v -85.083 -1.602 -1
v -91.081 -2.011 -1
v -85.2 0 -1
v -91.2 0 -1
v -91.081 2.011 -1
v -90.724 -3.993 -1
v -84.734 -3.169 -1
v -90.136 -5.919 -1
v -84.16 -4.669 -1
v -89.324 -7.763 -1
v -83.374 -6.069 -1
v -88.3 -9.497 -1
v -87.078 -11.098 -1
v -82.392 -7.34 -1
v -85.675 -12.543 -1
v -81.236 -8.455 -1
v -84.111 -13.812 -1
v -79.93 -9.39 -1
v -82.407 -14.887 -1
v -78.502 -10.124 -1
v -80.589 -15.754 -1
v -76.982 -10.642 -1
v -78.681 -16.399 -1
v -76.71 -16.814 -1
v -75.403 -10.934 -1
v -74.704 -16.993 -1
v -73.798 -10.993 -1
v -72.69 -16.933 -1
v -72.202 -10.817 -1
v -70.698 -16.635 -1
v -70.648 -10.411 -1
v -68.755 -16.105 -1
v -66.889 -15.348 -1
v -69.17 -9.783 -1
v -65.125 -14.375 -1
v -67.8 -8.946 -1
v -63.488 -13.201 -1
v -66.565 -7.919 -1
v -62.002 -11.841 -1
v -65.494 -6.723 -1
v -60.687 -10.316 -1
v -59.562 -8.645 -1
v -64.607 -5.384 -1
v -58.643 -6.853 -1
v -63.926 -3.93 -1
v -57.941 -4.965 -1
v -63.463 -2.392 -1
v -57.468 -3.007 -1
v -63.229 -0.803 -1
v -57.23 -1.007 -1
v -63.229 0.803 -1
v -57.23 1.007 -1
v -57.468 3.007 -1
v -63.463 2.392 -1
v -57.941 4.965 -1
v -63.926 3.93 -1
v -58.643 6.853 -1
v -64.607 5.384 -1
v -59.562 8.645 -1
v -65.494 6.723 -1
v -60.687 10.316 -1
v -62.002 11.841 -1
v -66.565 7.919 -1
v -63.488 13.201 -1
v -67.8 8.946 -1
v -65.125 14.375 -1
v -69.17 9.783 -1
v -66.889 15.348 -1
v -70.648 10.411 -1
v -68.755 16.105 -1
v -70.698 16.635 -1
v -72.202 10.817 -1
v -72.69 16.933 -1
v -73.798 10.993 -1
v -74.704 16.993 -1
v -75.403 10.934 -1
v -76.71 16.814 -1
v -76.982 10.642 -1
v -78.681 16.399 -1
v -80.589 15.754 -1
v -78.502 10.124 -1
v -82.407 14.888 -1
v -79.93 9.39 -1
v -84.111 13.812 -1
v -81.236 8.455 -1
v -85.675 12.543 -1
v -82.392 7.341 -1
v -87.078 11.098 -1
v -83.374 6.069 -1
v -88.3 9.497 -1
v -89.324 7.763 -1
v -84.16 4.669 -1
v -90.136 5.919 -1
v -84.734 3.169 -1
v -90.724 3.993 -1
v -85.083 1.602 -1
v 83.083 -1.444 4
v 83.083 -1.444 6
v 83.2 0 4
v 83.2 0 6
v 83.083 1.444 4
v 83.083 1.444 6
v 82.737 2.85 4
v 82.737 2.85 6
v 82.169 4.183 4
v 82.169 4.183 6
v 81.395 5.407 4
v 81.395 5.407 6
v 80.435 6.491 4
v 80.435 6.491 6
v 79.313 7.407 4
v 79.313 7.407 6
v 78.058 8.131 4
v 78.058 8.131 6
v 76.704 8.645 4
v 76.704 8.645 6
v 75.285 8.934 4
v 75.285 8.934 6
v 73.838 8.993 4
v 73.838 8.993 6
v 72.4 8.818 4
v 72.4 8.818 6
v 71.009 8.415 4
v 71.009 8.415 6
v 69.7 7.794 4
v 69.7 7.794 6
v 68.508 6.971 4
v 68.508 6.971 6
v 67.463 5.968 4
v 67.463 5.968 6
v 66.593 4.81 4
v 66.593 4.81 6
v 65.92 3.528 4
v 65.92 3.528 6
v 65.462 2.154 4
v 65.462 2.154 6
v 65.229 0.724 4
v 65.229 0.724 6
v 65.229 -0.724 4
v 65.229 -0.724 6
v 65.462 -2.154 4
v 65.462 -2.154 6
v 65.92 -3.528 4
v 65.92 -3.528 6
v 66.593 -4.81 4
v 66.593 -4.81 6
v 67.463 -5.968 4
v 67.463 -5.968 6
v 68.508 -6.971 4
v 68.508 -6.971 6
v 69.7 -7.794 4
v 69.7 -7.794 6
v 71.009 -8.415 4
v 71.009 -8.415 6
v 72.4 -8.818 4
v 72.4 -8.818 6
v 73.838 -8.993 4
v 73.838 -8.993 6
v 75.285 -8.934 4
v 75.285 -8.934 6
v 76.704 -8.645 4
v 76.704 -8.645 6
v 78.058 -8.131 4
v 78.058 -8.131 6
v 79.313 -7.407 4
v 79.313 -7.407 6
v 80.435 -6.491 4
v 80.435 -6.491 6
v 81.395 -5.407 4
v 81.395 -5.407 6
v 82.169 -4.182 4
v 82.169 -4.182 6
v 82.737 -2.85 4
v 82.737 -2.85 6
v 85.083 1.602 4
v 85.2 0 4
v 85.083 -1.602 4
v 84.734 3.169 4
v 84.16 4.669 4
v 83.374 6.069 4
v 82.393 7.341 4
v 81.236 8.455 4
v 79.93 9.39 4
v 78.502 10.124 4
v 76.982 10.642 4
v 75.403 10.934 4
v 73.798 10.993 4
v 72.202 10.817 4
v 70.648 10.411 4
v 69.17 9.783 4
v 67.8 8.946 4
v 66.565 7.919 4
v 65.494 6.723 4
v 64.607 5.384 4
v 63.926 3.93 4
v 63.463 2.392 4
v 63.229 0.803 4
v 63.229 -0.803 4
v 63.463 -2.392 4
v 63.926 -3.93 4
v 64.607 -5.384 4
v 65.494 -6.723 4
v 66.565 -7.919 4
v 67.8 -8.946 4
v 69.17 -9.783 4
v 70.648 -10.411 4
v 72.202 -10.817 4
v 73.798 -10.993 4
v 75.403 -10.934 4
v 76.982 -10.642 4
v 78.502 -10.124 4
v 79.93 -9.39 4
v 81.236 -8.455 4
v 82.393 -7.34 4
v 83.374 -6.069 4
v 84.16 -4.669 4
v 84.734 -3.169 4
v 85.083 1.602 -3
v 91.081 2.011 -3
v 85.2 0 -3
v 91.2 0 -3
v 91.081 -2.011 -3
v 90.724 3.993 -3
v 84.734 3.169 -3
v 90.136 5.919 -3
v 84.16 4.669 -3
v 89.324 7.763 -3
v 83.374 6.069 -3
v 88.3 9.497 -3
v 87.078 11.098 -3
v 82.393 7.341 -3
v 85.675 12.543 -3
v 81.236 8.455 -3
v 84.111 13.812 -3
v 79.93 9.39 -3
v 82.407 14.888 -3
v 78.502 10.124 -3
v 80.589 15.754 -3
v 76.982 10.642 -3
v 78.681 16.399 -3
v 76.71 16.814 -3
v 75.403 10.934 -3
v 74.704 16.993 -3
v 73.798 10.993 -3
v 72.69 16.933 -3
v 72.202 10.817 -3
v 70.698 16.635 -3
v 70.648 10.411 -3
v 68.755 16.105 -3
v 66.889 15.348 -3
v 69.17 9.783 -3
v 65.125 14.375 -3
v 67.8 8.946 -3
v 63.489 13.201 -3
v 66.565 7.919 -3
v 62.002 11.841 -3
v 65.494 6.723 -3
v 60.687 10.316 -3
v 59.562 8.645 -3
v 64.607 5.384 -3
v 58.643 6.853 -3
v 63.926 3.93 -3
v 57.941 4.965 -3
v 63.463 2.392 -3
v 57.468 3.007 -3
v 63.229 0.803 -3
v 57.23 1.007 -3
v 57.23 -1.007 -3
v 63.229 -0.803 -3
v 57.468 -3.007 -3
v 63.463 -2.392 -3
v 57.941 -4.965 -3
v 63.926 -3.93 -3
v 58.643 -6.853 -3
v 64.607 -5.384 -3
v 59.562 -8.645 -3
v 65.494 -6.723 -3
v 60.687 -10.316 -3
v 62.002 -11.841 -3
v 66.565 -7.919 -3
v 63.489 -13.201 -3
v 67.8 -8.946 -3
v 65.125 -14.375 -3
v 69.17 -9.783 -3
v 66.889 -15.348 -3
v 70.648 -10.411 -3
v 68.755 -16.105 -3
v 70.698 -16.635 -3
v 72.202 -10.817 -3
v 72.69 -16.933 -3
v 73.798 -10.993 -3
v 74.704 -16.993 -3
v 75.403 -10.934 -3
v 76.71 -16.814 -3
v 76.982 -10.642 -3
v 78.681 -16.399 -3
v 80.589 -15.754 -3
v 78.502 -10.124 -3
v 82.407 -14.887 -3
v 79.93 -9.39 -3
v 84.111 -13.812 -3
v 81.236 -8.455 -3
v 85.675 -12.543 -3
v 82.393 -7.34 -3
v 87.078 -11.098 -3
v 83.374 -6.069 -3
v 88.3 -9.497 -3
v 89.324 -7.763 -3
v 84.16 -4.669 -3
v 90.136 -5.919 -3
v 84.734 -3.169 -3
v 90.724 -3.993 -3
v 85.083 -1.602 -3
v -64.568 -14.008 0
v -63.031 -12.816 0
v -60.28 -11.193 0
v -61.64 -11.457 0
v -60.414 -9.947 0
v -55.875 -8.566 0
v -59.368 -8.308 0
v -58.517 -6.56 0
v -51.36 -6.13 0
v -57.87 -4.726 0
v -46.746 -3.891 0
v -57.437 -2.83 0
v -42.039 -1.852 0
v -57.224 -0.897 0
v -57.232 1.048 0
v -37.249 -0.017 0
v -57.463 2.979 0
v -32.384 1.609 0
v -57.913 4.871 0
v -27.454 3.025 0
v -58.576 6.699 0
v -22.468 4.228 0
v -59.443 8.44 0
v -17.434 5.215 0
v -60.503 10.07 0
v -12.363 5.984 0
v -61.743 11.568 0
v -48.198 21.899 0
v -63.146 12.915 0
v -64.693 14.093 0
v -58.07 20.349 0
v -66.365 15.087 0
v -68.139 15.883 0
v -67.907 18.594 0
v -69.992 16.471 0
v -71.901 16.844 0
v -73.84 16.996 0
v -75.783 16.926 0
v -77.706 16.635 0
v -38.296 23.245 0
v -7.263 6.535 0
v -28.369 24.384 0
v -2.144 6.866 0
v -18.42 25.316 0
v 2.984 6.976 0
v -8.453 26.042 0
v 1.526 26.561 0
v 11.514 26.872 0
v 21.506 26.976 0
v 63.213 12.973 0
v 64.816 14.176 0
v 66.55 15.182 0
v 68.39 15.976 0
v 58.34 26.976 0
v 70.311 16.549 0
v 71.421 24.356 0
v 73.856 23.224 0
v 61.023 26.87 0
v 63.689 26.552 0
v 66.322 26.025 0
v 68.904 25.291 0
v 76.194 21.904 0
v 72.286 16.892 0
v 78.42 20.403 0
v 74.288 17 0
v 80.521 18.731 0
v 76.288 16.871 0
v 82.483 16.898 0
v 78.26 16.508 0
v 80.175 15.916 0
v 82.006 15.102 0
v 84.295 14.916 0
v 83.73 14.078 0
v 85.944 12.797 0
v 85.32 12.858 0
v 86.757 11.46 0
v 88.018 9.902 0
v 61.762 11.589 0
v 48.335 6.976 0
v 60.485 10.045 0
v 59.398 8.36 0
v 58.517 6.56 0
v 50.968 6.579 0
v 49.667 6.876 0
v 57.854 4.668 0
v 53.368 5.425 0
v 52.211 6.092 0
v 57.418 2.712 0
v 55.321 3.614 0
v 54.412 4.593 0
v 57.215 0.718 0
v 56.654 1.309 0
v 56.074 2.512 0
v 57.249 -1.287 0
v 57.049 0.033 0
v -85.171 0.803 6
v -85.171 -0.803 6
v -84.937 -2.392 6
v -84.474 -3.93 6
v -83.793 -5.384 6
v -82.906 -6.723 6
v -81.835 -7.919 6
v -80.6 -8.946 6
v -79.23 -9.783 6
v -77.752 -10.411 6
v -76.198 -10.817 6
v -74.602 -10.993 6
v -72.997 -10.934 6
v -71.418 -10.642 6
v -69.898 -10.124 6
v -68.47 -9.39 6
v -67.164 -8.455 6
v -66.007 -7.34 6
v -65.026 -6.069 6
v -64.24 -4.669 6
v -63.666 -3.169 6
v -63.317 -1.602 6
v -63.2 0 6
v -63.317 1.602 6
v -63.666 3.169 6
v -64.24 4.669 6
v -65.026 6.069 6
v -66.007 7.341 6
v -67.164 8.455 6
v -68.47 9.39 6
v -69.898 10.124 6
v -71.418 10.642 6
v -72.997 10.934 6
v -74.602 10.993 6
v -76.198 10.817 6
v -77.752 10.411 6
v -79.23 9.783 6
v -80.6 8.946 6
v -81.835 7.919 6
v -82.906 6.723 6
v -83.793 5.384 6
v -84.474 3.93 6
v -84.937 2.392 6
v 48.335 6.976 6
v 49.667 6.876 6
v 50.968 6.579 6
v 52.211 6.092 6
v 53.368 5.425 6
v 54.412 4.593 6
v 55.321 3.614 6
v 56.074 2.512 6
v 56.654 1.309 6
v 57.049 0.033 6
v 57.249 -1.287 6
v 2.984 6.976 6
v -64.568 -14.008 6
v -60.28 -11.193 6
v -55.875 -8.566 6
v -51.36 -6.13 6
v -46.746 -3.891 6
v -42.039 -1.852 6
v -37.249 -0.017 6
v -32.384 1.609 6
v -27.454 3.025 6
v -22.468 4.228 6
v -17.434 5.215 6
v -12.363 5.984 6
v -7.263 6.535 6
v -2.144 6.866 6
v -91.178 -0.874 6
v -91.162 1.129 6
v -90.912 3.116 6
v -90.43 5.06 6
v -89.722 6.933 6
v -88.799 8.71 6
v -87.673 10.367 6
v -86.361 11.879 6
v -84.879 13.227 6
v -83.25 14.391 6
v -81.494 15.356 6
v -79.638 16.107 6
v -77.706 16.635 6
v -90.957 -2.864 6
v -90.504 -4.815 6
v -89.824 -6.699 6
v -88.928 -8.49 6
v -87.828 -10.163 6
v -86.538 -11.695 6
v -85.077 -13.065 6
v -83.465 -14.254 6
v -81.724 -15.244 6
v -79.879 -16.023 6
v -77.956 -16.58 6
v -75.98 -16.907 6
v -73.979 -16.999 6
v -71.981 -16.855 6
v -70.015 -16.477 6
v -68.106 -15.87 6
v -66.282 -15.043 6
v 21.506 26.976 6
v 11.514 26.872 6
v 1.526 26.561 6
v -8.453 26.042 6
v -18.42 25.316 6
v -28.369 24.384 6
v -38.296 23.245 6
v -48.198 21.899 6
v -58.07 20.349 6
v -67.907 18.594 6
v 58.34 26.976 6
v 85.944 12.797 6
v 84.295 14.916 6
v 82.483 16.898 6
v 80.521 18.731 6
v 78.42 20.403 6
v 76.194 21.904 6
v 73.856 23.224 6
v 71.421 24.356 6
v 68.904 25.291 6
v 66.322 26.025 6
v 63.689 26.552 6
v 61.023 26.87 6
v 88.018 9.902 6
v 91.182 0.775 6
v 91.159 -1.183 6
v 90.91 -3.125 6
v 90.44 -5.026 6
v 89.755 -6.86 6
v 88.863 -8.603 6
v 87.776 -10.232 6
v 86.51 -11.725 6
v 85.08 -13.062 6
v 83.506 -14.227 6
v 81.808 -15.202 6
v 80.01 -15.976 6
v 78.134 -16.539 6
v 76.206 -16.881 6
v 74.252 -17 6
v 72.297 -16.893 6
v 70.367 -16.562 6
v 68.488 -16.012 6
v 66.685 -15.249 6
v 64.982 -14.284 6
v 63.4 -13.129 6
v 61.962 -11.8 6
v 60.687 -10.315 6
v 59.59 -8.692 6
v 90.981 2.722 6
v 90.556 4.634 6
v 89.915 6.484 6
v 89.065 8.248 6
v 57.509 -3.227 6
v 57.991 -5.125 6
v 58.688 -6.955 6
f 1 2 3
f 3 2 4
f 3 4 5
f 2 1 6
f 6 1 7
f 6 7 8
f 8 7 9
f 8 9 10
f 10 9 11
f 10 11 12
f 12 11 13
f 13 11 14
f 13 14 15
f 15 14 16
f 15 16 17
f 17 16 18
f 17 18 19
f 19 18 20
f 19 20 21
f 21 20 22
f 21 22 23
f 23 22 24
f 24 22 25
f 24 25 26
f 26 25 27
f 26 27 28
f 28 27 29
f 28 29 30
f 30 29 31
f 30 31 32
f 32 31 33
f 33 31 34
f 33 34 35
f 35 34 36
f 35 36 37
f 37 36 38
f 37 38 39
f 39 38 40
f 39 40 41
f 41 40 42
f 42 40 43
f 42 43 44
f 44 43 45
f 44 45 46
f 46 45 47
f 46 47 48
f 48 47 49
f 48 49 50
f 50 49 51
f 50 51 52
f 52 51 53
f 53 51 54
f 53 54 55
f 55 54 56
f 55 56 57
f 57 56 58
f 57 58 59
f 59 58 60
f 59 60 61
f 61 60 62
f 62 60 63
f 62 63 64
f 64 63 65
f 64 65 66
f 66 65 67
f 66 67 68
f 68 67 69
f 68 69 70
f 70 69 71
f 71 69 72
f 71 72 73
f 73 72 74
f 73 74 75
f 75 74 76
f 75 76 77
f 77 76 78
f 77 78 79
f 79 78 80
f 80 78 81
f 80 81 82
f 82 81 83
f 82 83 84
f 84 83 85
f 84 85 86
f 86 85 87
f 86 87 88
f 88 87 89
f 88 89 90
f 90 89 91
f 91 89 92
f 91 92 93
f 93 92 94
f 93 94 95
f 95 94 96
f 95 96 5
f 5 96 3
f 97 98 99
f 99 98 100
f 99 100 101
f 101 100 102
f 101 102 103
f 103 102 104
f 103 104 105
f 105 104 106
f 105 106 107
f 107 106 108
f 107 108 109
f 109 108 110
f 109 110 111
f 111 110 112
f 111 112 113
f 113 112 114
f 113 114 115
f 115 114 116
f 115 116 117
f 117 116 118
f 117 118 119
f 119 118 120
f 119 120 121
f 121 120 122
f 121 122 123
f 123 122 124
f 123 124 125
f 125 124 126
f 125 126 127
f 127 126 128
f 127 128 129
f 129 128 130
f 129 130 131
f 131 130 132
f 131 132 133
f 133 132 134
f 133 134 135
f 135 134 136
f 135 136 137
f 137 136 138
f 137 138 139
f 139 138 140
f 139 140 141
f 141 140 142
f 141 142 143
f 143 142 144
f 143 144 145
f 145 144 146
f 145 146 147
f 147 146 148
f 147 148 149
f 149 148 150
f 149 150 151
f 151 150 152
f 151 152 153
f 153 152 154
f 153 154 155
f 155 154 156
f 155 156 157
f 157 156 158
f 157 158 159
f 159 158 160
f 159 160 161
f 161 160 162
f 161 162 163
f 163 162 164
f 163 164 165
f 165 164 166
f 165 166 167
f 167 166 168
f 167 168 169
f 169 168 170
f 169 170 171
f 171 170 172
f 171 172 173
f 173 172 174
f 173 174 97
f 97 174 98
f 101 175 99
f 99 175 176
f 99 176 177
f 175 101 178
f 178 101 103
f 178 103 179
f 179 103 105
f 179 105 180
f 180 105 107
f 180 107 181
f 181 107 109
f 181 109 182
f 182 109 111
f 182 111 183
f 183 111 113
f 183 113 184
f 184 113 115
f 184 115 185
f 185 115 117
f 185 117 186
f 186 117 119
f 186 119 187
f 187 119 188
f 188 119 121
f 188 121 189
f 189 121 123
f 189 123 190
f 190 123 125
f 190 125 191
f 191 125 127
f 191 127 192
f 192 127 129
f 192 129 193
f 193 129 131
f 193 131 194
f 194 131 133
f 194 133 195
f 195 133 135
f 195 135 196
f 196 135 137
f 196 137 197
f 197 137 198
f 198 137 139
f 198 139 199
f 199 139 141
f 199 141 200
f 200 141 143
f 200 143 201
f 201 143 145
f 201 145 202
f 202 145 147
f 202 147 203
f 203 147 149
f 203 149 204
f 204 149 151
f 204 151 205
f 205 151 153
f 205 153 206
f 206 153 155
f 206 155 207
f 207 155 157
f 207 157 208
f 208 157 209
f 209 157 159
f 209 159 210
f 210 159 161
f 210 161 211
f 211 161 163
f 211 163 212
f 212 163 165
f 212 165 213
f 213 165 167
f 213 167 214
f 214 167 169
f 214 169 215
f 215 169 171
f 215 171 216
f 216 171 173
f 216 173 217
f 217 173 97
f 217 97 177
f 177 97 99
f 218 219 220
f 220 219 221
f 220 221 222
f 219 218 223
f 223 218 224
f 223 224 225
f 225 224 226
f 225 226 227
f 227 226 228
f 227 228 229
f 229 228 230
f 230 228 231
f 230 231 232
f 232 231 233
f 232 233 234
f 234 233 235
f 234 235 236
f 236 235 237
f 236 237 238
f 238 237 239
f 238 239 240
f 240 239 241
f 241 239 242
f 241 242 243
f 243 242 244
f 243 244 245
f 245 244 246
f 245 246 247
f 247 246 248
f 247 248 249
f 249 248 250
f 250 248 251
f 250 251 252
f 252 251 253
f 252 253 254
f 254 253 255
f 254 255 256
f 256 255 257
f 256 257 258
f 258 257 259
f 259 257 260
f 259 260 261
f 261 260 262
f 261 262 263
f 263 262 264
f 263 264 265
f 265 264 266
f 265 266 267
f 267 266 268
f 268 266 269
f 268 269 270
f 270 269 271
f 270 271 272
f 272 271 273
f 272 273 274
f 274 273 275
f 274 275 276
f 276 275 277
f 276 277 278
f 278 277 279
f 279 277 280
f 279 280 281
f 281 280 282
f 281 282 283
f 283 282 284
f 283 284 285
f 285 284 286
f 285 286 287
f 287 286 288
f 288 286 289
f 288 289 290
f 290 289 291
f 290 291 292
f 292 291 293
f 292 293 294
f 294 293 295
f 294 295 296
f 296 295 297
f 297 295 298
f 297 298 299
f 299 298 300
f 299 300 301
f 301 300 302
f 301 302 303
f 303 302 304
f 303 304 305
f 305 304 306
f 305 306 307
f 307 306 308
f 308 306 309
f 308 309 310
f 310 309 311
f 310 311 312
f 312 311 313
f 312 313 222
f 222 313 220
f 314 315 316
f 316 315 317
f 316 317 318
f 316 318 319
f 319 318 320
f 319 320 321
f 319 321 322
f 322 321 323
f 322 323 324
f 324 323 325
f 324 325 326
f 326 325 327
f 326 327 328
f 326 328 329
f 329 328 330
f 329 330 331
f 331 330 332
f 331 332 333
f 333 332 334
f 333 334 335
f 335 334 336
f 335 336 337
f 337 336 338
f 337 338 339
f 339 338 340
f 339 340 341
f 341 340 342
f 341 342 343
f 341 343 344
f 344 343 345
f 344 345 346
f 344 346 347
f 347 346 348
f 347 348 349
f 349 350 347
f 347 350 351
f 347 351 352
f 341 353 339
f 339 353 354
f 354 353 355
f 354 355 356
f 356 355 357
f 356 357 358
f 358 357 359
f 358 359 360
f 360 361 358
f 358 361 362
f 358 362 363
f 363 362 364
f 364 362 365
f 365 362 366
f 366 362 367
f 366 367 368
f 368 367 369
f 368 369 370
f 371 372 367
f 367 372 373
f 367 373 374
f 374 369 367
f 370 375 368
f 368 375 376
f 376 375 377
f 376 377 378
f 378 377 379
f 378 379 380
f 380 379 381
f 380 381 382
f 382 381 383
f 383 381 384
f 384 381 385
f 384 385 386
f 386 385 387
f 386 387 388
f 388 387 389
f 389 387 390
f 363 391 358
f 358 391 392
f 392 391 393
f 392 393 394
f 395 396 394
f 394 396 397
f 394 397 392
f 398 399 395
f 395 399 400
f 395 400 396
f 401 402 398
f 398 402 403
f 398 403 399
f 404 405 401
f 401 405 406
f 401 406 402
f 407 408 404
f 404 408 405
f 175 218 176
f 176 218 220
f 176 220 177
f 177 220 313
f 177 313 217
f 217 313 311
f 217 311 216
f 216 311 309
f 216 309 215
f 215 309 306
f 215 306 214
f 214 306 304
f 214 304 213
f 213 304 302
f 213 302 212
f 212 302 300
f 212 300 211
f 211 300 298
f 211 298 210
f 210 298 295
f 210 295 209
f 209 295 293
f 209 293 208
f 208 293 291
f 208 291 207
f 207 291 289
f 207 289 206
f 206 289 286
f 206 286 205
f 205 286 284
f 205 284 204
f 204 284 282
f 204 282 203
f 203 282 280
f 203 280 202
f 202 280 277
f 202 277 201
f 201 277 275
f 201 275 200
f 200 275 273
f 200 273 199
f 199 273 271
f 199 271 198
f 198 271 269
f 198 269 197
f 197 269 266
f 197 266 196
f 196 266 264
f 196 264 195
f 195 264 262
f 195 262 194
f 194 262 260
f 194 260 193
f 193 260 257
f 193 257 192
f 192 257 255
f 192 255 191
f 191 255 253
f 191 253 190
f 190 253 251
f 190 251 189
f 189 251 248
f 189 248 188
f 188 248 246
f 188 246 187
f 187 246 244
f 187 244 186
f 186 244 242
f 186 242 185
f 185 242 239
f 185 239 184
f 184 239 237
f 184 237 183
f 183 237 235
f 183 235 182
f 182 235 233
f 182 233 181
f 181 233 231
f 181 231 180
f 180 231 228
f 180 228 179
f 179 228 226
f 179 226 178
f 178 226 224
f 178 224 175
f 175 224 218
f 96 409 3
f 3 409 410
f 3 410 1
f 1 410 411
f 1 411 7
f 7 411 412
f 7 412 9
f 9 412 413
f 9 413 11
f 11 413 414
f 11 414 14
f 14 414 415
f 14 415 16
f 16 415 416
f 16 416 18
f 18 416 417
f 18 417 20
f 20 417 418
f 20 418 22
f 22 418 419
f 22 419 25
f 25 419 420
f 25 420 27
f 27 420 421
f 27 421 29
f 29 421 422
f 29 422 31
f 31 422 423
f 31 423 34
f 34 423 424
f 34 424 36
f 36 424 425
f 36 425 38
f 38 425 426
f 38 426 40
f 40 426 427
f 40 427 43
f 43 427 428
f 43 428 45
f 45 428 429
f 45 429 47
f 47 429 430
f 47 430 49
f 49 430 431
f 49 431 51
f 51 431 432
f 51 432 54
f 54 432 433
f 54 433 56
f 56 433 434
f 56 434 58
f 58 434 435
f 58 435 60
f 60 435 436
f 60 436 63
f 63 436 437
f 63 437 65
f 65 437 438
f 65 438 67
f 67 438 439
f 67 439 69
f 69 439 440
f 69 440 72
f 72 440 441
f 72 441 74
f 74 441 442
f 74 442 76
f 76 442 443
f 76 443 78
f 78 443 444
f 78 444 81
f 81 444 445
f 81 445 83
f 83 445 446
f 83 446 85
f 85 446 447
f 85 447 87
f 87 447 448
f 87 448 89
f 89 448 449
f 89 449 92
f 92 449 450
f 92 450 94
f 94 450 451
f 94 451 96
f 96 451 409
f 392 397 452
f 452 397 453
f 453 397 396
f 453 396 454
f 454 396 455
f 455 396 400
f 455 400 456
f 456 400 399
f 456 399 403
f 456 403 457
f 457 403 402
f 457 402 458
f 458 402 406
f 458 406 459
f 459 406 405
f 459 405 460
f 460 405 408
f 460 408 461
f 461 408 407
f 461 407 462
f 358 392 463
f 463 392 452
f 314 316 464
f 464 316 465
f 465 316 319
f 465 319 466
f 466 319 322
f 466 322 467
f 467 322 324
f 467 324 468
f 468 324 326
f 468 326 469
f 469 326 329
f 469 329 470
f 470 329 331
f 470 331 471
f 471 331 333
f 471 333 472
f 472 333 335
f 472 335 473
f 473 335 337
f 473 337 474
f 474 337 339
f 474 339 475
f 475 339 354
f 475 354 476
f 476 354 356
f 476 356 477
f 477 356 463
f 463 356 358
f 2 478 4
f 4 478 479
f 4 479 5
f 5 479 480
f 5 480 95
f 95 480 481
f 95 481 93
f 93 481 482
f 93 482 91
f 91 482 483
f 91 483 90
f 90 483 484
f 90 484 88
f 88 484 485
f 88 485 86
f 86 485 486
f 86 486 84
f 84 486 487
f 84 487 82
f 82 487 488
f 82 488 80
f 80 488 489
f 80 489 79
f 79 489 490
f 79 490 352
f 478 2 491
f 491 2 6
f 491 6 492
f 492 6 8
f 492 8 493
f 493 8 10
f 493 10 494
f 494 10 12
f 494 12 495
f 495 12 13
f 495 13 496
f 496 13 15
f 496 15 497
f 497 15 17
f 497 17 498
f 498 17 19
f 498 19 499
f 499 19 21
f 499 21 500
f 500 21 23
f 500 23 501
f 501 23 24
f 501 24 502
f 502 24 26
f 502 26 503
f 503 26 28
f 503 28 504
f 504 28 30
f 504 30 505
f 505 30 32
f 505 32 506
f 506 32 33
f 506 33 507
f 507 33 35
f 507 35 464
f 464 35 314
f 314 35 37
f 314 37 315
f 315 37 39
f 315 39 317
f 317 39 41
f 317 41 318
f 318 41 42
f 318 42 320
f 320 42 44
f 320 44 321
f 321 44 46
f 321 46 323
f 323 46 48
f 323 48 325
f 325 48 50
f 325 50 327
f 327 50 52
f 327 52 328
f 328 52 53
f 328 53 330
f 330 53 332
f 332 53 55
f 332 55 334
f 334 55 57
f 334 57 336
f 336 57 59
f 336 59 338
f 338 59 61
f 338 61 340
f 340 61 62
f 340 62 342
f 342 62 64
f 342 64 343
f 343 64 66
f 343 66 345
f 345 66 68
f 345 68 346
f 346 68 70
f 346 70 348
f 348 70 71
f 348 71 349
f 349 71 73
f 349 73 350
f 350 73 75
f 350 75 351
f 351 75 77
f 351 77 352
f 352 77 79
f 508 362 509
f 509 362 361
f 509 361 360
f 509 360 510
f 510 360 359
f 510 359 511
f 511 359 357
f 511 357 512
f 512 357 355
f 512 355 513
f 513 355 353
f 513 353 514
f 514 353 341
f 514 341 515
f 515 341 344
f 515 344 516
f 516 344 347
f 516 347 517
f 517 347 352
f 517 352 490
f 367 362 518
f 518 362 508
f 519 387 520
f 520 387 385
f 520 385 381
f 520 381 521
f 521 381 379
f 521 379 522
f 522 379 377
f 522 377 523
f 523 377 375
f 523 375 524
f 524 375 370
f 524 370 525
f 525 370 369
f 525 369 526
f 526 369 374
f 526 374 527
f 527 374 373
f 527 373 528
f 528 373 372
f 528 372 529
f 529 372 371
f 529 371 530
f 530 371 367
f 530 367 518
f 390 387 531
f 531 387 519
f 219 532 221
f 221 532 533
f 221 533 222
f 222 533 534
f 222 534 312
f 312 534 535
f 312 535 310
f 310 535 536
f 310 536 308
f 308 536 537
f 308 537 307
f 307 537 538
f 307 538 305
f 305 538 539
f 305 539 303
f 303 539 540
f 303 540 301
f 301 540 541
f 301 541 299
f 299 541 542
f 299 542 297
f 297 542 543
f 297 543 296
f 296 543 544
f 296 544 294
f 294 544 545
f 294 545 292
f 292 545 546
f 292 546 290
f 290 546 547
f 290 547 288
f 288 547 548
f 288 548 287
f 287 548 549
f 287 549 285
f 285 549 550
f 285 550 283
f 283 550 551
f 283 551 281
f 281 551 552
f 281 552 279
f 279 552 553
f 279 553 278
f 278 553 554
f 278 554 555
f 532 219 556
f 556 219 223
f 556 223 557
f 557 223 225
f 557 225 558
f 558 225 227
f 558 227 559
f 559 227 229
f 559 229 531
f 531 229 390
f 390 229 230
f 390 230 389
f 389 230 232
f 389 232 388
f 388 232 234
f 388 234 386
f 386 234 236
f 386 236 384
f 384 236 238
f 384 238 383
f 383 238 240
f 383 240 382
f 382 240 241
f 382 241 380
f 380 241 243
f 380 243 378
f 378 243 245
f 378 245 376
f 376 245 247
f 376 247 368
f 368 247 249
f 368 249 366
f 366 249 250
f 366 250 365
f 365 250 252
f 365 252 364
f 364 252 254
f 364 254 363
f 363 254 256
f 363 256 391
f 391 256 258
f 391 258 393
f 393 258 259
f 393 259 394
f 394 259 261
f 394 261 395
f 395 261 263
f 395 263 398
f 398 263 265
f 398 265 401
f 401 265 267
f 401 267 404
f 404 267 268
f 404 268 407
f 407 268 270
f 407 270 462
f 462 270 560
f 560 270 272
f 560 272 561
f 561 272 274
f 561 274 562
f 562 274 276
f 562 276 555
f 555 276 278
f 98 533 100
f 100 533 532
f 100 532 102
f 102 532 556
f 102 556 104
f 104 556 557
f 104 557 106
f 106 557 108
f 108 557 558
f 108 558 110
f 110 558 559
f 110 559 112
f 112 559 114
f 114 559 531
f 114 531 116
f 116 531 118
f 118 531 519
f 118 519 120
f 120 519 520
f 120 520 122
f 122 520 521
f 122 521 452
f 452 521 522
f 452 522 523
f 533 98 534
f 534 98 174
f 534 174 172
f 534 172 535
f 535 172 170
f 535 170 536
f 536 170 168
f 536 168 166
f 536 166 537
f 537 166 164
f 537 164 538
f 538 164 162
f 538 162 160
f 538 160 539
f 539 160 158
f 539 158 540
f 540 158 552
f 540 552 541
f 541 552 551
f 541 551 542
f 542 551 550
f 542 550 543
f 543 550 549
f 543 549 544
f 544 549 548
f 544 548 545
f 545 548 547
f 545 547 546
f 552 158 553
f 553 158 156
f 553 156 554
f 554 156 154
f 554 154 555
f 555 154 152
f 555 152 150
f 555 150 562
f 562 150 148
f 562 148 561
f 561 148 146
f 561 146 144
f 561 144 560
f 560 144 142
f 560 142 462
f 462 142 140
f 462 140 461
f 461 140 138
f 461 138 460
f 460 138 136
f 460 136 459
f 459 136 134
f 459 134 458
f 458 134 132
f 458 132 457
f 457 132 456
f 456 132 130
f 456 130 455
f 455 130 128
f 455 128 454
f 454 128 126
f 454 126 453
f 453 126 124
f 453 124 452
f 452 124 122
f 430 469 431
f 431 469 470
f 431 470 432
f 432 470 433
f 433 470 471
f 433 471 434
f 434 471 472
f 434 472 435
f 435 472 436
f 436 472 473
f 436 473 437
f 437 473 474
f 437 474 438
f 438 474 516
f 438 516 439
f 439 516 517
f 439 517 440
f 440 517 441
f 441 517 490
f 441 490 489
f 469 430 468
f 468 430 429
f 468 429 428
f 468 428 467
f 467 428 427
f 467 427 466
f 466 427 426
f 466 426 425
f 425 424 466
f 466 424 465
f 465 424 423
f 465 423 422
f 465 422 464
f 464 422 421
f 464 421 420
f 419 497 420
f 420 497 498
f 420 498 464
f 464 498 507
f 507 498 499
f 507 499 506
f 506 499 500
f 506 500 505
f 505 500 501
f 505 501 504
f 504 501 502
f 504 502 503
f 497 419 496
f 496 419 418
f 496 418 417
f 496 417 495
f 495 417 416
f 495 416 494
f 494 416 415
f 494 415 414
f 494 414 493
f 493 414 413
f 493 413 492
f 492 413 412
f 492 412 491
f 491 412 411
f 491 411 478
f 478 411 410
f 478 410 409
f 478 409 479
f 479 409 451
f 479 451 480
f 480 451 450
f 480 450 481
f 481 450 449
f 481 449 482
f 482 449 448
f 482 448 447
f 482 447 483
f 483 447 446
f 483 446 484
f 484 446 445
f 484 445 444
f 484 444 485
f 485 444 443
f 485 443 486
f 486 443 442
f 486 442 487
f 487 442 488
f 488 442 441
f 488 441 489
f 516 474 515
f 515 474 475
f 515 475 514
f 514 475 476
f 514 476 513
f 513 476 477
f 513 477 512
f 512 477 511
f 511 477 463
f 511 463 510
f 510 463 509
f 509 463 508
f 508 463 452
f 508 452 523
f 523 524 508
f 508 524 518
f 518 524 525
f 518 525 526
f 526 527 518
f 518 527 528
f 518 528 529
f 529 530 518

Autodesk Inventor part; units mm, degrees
ref_plane "YZ Plane" through (0, 0, 0) normal (1, 0, 0) x (0, 1, 0)
ref_plane "XZ Plane" through (0, 0, 0) normal (0, 1, 0) x (-1, 0, 0)
ref_plane "XY Plane" through (0, 0, 0) normal (0, 0, 1) x (1, 0, 0)
sketch "Sketch1" plane through (0, 0, 0) normal (0, 0, 1) x (1, 0, 0)
  circle A0 centre (-74.2, 0) radius 11
  circle A1 centre (74.2, 0) radius 11
  arc A2 (-77.7059, 16.6346) -> (-64.5678, -14.0079) centre (-74.2, 0) ccw
  arc A3 (57.2488, -1.2867) -> (88.0183, 9.9023) centre (74.2, 0) ccw
  line L0 (-103.108, 0) -> (101.0811, 0)
  line L1 (48.335, 6.976) -> (2.9837, 6.976)
  arc A4 (2.9837, 6.976) -> (-64.5678, -14.0079) centre (2.9837, -112.247) ccw
  arc A5 (57.2488, -1.2867) -> (48.335, 6.976) centre (48.335, -1.9634) ccw
  line L2 (88.0183, 9.9023) -> (85.9436, 12.7975)
  line L3 (21.5061, 26.976) -> (58.34, 26.976)
  arc A6 (85.9436, 12.7975) -> (58.34, 26.976) centre (58.34, -6.9833) ccw
  arc A7 (21.5061, 26.976) -> (-77.7059, 16.6346) centre (21.5061, -454.096) ccw
  point P0 (0, 0)
  dimension "d0" = 22
  dimension "d1" = 22
  dimension "d2" = 148.4
  dimension "d3" = 74.2
  dimension "d4" = 6
  dimension "d5" = 6
  dimension "d12" = 20
extrude "Extrusion1" add sketch "Sketch1" along normal blind 6 contours L0 A4 A2 A0 | A0 L0 A2 A7 L3 A6 L2 A3 A1 A5 L1 A4 | L0 A1 A3 A5
sketch "Sketch2" plane through (0, 0, 6) normal (0, 0, 1) x (1, 0, 0)
  circle A0 centre (-74.2, 0) radius 11 projected
  circle A1 centre (-74.2, 0) radius 17
  circle A2 centre (74.2, 0) radius 11 projected
  circle A3 centre (74.2, 0) radius 17
  point P0 (0, 0)
extrude "Extrusion2" add sketch "Sketch2" against normal blind 9
fillet "Fillet1" [suppressed]
sketch "Sketch3" plane through (0, 0, 6) normal (0, 0, 1) x (1, 0, 0)
  circle A0 centre (74.2, 0) radius 11 projected
  circle A1 centre (74.2, 0) radius 9
  point P0 (0, 0)
  dimension "d32" = 18
extrude "Extrusion3" add sketch "Sketch3" against normal blind 2
sketch "Sketch5" plane through (-74.2, 0, -3) normal (0, 0, -1) x (-1, 0, 0)
  circle A0 centre (0, 0) radius 11 projected
  circle A1 centre (0, 0) radius 17 projected
  point P0 (-74.2, 0)
extrude "Extrusion5" cut sketch "Sketch5" against normal blind 2
equation "\"d3\" = 0.5 * d2"
properties part number "Arm 13X - parallel linkage"
